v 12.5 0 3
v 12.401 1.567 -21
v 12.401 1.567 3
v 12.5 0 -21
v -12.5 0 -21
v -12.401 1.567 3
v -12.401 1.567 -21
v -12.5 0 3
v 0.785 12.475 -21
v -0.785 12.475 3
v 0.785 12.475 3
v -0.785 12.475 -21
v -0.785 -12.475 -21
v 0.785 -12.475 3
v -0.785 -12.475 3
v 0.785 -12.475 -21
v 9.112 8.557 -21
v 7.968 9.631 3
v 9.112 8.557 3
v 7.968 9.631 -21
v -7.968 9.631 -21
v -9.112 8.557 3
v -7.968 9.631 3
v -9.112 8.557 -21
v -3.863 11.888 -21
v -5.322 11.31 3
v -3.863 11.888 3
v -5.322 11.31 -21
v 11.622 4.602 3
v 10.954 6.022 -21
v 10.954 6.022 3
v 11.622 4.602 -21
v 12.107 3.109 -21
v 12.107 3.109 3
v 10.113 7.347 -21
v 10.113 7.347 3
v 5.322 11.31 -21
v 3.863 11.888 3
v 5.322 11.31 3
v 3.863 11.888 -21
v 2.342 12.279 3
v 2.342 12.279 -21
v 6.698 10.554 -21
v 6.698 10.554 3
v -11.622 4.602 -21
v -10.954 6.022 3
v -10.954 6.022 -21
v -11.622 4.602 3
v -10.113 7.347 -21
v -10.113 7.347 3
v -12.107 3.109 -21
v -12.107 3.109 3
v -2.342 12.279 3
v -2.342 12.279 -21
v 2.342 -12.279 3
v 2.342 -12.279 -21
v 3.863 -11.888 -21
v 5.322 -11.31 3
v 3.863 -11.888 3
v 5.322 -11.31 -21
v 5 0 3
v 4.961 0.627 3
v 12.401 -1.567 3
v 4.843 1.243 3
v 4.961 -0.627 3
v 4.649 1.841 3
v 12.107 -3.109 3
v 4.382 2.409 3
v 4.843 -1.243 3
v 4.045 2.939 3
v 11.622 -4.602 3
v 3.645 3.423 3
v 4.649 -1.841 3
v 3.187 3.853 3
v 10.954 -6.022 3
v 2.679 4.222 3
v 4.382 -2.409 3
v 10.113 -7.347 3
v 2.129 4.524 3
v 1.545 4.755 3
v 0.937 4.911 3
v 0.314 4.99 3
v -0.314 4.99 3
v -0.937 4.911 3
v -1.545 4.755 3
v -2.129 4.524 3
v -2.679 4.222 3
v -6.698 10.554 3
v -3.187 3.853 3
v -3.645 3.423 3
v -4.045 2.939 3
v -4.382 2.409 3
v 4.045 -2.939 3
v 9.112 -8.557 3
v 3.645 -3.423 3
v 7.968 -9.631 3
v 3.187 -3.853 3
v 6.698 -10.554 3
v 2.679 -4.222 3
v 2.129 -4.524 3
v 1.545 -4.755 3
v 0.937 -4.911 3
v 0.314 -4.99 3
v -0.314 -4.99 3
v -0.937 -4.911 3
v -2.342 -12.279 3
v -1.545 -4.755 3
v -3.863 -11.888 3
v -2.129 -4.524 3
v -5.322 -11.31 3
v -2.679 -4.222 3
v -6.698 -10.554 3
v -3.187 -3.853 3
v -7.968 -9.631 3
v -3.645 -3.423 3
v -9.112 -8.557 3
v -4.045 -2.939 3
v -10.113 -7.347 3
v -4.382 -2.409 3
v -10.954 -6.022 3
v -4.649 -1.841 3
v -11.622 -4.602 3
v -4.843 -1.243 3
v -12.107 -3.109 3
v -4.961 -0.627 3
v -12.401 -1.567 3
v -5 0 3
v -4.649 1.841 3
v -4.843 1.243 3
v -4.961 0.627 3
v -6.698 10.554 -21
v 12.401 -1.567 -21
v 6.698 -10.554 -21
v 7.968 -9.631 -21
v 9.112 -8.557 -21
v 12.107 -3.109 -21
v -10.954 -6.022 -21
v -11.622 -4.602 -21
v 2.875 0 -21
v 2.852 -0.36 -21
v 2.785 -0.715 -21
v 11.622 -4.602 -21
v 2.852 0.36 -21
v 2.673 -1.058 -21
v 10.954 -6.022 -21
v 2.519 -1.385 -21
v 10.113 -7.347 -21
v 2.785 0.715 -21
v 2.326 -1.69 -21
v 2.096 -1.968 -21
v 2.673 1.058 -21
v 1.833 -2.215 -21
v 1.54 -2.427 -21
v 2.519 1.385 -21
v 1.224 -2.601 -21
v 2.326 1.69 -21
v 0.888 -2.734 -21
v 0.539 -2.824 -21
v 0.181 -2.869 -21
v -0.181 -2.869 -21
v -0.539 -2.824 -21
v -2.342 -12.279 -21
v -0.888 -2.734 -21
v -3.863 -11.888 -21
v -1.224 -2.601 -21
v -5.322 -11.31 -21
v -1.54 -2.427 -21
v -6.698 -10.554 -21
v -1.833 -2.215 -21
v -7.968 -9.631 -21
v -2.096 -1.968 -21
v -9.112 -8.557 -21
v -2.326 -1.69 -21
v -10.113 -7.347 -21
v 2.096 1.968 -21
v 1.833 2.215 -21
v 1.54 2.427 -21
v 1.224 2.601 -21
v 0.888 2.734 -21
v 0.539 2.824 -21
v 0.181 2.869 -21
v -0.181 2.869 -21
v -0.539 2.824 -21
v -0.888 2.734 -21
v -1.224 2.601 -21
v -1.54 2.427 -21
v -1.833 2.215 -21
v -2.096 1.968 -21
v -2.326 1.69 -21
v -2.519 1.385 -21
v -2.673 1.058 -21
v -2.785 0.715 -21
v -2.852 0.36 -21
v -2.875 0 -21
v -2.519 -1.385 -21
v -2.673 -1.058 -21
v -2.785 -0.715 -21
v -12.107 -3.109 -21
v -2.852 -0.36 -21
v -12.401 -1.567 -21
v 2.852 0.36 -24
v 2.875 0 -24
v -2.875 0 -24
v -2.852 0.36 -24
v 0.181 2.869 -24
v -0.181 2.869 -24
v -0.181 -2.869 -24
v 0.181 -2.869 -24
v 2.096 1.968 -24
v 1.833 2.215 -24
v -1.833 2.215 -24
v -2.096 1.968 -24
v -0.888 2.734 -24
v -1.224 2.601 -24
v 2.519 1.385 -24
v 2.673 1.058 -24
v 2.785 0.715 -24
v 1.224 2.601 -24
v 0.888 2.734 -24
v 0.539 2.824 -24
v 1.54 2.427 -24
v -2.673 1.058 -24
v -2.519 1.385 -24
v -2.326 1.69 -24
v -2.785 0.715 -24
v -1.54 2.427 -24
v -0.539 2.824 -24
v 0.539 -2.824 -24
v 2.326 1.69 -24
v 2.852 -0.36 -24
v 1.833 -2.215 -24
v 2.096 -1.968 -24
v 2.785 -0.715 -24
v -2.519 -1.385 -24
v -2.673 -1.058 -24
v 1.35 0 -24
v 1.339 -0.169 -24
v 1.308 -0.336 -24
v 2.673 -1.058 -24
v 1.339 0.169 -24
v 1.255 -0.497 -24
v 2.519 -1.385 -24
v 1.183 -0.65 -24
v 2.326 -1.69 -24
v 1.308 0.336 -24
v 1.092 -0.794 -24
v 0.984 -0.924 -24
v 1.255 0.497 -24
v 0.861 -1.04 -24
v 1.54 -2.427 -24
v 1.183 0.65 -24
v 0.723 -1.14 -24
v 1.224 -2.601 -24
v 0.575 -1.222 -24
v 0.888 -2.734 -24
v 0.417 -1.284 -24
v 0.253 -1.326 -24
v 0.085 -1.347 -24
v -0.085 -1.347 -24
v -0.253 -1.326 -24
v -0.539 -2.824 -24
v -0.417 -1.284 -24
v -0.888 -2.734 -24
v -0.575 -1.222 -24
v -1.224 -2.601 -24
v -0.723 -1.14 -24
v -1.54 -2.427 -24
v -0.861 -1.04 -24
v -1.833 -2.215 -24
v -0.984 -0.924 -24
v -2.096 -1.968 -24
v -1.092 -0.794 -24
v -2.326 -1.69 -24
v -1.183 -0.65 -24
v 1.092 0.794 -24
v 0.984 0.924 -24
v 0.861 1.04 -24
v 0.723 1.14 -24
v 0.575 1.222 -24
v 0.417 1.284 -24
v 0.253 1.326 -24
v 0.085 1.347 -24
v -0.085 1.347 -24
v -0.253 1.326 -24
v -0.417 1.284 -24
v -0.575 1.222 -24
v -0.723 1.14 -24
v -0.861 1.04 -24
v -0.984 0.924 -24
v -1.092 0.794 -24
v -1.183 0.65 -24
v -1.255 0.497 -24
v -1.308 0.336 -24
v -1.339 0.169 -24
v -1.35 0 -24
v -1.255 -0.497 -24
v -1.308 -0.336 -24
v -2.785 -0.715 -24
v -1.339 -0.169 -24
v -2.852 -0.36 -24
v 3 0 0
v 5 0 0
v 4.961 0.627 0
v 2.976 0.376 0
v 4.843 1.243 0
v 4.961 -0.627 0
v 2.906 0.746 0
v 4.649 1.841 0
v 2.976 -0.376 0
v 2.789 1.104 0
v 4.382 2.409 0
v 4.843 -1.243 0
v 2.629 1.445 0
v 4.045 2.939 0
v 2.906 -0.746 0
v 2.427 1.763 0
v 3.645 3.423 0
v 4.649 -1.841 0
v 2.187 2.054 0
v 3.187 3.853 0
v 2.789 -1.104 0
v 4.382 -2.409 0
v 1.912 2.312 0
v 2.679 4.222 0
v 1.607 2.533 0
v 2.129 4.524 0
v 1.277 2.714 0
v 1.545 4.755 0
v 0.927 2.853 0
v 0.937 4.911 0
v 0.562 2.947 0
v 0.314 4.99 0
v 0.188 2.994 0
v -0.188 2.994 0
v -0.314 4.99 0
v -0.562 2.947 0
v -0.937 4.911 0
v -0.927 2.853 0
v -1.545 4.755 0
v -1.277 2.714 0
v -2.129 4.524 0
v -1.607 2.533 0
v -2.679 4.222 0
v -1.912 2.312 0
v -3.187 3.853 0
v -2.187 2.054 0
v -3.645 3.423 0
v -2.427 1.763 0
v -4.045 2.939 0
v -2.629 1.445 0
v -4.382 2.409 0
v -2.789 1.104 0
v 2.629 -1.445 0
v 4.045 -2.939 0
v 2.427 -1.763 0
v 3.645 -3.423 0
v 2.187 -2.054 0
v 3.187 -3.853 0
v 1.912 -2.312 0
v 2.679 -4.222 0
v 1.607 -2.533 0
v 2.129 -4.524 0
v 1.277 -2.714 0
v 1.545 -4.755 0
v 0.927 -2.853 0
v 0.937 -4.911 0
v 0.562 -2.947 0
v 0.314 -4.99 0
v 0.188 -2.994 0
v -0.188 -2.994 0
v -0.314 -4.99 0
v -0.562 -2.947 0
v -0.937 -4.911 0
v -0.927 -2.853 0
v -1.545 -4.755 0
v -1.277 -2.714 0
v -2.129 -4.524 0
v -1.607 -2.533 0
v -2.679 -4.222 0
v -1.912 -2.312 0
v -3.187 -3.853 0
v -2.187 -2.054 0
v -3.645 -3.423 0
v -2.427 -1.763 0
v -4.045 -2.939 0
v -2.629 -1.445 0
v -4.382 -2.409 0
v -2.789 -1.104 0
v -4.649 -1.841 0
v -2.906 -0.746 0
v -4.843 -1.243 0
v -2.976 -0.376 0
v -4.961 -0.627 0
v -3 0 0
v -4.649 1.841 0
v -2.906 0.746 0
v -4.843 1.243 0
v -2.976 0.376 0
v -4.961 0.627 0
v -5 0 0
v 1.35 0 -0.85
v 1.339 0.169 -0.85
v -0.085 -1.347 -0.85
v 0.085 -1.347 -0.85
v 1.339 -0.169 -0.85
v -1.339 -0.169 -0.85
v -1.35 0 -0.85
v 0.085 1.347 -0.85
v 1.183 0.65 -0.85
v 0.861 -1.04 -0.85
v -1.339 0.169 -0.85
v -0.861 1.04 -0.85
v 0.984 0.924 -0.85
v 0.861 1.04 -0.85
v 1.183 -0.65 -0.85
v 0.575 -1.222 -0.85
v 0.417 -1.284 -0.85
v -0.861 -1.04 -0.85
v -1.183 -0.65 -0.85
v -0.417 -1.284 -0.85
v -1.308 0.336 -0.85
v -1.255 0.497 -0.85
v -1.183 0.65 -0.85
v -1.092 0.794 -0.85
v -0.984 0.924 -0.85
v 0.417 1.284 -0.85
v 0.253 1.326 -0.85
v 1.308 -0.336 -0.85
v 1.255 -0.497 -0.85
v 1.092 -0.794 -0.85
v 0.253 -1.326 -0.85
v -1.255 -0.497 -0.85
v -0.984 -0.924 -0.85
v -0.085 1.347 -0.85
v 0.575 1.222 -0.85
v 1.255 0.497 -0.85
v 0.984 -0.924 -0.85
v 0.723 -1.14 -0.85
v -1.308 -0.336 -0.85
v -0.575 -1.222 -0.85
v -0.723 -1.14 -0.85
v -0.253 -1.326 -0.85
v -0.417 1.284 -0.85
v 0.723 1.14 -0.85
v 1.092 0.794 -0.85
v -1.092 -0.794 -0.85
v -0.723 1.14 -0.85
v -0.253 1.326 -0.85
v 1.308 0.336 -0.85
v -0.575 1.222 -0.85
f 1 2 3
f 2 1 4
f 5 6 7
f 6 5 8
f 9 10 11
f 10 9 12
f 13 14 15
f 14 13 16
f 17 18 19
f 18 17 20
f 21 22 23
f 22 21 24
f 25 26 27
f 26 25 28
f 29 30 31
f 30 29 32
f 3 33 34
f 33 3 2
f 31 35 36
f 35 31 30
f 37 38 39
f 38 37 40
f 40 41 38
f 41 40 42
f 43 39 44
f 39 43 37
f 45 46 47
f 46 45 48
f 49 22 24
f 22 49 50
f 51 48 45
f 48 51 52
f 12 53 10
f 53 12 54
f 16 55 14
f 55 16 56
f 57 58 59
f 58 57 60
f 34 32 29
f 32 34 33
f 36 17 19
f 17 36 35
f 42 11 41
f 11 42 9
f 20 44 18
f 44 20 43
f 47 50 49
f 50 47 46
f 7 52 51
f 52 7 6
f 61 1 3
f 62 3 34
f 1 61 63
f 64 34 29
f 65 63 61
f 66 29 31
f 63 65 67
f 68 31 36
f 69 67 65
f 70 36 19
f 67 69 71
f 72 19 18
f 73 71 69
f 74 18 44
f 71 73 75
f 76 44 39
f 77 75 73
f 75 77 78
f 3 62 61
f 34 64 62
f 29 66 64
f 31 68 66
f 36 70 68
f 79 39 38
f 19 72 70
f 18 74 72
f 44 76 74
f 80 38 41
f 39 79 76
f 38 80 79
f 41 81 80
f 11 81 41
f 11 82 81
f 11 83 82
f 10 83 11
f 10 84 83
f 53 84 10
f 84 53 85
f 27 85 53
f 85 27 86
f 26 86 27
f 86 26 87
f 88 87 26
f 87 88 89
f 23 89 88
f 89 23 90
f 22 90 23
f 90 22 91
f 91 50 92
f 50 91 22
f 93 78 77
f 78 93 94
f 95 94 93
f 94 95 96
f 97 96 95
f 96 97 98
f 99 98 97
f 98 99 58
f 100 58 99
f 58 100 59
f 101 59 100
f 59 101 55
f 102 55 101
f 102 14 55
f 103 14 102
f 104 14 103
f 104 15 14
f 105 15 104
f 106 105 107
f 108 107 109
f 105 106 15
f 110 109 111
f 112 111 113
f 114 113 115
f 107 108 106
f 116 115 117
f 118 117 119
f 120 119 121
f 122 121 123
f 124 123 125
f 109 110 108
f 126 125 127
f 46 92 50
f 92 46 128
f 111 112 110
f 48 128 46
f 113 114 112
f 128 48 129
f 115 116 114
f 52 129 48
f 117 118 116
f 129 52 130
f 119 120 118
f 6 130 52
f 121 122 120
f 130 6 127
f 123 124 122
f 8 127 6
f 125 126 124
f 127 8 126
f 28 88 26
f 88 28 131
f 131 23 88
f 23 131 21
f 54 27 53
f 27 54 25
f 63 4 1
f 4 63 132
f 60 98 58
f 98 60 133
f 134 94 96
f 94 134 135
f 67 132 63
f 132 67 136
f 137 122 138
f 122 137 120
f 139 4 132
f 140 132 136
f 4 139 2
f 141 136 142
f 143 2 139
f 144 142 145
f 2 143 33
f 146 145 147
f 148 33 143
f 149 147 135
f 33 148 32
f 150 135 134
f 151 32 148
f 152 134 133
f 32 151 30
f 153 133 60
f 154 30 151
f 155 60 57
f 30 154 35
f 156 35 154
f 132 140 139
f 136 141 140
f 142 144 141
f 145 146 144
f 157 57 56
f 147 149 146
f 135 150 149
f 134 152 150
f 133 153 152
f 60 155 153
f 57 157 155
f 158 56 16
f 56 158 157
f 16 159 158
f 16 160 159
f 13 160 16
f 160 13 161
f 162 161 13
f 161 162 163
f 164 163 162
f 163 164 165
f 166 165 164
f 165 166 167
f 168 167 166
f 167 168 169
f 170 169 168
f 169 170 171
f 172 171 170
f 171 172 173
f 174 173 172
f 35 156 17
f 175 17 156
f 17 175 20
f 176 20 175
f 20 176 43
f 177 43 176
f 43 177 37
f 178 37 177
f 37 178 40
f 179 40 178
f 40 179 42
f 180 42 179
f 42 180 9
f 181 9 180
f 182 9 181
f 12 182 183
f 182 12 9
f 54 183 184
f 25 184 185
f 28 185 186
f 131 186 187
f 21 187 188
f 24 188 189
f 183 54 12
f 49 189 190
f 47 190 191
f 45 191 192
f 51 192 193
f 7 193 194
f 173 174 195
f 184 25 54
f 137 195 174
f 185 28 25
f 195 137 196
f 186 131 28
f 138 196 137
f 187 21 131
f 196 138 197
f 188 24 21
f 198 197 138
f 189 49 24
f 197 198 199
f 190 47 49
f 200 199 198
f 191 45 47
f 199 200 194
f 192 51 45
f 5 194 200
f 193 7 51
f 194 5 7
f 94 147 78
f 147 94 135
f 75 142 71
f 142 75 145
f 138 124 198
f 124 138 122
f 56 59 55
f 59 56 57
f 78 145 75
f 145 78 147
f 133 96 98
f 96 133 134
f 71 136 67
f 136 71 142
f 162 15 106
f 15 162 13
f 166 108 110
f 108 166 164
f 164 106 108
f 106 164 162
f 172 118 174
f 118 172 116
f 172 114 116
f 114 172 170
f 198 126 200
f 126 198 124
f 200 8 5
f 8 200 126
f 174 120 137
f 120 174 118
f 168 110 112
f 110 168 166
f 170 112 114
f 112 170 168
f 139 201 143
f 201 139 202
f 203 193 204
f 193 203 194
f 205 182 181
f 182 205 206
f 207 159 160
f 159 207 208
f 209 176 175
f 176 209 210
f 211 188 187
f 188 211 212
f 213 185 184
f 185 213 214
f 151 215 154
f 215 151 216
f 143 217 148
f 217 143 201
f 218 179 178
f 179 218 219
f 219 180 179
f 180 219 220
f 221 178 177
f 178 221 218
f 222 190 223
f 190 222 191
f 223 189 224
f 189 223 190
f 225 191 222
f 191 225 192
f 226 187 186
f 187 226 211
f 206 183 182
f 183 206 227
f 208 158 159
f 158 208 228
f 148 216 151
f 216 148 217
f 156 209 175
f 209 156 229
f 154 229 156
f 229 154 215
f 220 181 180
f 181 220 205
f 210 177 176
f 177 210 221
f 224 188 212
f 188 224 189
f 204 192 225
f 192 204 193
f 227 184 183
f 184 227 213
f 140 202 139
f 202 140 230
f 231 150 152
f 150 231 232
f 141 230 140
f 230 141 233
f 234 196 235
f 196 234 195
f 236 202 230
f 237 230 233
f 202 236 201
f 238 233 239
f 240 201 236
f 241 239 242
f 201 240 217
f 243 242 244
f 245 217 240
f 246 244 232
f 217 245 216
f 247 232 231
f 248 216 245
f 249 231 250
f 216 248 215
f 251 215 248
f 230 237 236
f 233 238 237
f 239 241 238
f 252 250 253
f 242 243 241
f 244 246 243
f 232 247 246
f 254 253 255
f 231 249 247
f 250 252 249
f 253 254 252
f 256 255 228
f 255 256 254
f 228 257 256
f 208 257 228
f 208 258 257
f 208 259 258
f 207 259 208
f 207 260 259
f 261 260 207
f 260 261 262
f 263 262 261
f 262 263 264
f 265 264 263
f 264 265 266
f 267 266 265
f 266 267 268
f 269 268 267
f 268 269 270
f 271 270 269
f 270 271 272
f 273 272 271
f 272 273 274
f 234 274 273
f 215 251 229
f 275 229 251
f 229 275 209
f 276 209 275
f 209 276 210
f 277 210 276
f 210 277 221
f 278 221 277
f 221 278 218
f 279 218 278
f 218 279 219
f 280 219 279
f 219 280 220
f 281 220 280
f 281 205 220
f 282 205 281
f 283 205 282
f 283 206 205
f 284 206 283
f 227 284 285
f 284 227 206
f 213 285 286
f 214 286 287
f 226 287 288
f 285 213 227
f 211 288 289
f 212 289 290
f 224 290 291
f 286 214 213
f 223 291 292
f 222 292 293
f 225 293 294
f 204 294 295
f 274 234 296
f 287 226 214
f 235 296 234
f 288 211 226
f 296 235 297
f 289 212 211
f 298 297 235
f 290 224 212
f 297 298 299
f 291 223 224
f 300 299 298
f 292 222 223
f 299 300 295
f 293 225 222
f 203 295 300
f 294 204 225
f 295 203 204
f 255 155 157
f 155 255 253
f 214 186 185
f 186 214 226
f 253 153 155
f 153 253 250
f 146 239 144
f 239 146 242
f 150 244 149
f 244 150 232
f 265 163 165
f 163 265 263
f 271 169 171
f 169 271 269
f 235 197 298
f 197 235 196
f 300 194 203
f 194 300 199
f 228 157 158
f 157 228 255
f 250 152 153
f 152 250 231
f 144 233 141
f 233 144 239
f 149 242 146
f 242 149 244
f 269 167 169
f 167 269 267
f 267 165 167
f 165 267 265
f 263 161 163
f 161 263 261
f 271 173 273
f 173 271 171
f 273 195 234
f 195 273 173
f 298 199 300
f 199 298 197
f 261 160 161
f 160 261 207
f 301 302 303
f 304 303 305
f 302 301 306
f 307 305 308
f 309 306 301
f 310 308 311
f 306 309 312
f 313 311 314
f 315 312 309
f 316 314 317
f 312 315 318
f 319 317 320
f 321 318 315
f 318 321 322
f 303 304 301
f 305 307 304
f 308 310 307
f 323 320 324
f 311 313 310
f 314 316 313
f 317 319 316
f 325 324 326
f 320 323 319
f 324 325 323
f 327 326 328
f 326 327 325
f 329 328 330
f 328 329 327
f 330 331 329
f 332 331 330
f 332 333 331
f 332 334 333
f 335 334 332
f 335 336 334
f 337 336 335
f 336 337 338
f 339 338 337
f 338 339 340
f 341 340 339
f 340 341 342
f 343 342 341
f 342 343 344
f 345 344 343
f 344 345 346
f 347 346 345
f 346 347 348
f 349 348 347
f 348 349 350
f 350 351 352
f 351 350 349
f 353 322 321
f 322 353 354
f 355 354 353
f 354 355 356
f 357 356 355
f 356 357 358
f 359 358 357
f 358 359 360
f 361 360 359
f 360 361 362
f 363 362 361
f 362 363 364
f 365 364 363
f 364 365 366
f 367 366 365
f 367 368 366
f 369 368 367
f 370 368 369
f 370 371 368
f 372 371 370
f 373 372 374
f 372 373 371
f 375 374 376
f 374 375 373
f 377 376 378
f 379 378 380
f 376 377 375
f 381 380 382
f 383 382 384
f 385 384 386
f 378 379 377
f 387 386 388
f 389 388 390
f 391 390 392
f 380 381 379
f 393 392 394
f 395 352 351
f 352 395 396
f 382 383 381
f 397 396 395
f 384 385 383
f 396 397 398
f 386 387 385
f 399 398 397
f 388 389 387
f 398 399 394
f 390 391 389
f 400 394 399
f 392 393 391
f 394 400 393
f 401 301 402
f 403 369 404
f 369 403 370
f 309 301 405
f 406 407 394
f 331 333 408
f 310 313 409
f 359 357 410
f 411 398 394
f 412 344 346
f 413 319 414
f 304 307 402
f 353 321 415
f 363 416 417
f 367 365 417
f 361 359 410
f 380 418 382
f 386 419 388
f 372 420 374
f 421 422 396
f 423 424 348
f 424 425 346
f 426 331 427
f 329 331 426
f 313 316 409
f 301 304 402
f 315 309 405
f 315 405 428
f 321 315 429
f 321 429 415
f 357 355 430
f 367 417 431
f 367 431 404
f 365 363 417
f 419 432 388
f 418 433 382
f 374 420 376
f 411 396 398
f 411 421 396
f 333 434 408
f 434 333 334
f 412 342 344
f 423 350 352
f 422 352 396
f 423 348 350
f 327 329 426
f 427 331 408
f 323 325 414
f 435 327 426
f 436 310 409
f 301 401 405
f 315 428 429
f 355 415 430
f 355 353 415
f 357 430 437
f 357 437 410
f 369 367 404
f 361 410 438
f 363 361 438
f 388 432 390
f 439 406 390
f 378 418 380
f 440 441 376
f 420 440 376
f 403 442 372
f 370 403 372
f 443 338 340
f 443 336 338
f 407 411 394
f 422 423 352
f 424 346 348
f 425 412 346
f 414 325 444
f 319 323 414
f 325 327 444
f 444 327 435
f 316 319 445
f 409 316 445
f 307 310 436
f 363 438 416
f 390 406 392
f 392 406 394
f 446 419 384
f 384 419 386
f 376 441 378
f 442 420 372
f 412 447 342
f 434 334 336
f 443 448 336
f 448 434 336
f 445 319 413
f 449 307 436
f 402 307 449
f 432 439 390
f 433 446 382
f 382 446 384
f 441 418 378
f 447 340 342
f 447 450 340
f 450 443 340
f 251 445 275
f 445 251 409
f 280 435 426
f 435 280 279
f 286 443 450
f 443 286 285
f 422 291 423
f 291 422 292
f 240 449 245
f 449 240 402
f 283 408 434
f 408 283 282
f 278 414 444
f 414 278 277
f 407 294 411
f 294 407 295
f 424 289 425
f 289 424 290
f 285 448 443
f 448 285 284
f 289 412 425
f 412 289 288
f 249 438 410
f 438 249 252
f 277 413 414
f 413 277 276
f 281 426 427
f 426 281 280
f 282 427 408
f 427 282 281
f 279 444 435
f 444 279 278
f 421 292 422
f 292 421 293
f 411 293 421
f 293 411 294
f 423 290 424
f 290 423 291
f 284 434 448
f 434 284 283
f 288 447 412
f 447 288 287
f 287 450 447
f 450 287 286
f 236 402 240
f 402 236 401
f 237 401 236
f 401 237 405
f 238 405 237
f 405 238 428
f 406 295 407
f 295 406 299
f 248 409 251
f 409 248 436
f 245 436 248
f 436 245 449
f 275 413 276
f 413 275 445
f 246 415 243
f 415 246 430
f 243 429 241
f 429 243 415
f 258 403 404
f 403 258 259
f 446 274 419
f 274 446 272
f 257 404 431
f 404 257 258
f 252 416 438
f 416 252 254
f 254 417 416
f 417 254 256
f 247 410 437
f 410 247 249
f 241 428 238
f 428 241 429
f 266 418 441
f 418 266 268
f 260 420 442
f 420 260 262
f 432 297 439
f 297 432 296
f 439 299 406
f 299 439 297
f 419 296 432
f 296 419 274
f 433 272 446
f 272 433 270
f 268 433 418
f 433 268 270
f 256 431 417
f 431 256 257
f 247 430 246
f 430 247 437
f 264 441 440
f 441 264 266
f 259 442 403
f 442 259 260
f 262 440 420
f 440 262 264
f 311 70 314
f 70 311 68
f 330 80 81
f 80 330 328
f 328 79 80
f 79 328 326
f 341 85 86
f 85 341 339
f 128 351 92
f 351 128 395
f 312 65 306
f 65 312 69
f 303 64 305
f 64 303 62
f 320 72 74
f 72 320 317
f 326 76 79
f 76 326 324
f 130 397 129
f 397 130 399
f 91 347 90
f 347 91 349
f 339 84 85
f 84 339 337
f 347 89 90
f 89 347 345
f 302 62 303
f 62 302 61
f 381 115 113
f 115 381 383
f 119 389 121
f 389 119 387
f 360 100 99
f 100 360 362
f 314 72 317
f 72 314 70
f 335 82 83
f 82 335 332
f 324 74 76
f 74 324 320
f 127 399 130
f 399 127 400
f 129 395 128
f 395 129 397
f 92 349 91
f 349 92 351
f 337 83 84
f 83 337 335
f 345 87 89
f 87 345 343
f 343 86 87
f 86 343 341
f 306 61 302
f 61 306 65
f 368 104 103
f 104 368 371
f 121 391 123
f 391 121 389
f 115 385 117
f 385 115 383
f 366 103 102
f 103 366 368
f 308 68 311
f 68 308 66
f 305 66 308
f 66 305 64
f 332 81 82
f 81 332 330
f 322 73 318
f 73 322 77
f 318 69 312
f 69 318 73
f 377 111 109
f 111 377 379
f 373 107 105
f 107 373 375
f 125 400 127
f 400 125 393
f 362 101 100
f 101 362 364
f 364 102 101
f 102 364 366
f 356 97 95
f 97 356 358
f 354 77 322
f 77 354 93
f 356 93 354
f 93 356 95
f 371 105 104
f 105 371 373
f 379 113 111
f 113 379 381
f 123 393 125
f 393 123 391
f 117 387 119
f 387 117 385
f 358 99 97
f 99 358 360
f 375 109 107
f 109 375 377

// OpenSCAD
$fn = 50;

difference() {
	union() {
		translate(v = [0, 0, -21.0]) {
			cylinder(h = 24, r = 12.5);
		}
		#translate(v = [0, 0, -24.0]) {
			cylinder(h = 24, r = 2.875);
		}
	}
	union() {
		translate(v = [0, 0, 0]) {
			rotate(a = [0, 0, 0]) {
				difference() {
					union() {
						translate(v = [0, 0, -24.0]) {
							cylinder(h = 24, r = 1.0);
						}
						translate(v = [0, 0, -0.85]) {
							cylinder(h = 0.85, r1 = 1.35, r2 = 3.0);
						}
						translate(v = [0, 0, -24.0]) {
							cylinder(h = 24, r = 1.35);
						}
						translate(v = [0, 0, -24.0]) {
							cylinder(h = 24, r = 1.0);
						}
					}
					union();
				}
			}
		}
		#cylinder(h = 3, r = 5.0);
	}
}
